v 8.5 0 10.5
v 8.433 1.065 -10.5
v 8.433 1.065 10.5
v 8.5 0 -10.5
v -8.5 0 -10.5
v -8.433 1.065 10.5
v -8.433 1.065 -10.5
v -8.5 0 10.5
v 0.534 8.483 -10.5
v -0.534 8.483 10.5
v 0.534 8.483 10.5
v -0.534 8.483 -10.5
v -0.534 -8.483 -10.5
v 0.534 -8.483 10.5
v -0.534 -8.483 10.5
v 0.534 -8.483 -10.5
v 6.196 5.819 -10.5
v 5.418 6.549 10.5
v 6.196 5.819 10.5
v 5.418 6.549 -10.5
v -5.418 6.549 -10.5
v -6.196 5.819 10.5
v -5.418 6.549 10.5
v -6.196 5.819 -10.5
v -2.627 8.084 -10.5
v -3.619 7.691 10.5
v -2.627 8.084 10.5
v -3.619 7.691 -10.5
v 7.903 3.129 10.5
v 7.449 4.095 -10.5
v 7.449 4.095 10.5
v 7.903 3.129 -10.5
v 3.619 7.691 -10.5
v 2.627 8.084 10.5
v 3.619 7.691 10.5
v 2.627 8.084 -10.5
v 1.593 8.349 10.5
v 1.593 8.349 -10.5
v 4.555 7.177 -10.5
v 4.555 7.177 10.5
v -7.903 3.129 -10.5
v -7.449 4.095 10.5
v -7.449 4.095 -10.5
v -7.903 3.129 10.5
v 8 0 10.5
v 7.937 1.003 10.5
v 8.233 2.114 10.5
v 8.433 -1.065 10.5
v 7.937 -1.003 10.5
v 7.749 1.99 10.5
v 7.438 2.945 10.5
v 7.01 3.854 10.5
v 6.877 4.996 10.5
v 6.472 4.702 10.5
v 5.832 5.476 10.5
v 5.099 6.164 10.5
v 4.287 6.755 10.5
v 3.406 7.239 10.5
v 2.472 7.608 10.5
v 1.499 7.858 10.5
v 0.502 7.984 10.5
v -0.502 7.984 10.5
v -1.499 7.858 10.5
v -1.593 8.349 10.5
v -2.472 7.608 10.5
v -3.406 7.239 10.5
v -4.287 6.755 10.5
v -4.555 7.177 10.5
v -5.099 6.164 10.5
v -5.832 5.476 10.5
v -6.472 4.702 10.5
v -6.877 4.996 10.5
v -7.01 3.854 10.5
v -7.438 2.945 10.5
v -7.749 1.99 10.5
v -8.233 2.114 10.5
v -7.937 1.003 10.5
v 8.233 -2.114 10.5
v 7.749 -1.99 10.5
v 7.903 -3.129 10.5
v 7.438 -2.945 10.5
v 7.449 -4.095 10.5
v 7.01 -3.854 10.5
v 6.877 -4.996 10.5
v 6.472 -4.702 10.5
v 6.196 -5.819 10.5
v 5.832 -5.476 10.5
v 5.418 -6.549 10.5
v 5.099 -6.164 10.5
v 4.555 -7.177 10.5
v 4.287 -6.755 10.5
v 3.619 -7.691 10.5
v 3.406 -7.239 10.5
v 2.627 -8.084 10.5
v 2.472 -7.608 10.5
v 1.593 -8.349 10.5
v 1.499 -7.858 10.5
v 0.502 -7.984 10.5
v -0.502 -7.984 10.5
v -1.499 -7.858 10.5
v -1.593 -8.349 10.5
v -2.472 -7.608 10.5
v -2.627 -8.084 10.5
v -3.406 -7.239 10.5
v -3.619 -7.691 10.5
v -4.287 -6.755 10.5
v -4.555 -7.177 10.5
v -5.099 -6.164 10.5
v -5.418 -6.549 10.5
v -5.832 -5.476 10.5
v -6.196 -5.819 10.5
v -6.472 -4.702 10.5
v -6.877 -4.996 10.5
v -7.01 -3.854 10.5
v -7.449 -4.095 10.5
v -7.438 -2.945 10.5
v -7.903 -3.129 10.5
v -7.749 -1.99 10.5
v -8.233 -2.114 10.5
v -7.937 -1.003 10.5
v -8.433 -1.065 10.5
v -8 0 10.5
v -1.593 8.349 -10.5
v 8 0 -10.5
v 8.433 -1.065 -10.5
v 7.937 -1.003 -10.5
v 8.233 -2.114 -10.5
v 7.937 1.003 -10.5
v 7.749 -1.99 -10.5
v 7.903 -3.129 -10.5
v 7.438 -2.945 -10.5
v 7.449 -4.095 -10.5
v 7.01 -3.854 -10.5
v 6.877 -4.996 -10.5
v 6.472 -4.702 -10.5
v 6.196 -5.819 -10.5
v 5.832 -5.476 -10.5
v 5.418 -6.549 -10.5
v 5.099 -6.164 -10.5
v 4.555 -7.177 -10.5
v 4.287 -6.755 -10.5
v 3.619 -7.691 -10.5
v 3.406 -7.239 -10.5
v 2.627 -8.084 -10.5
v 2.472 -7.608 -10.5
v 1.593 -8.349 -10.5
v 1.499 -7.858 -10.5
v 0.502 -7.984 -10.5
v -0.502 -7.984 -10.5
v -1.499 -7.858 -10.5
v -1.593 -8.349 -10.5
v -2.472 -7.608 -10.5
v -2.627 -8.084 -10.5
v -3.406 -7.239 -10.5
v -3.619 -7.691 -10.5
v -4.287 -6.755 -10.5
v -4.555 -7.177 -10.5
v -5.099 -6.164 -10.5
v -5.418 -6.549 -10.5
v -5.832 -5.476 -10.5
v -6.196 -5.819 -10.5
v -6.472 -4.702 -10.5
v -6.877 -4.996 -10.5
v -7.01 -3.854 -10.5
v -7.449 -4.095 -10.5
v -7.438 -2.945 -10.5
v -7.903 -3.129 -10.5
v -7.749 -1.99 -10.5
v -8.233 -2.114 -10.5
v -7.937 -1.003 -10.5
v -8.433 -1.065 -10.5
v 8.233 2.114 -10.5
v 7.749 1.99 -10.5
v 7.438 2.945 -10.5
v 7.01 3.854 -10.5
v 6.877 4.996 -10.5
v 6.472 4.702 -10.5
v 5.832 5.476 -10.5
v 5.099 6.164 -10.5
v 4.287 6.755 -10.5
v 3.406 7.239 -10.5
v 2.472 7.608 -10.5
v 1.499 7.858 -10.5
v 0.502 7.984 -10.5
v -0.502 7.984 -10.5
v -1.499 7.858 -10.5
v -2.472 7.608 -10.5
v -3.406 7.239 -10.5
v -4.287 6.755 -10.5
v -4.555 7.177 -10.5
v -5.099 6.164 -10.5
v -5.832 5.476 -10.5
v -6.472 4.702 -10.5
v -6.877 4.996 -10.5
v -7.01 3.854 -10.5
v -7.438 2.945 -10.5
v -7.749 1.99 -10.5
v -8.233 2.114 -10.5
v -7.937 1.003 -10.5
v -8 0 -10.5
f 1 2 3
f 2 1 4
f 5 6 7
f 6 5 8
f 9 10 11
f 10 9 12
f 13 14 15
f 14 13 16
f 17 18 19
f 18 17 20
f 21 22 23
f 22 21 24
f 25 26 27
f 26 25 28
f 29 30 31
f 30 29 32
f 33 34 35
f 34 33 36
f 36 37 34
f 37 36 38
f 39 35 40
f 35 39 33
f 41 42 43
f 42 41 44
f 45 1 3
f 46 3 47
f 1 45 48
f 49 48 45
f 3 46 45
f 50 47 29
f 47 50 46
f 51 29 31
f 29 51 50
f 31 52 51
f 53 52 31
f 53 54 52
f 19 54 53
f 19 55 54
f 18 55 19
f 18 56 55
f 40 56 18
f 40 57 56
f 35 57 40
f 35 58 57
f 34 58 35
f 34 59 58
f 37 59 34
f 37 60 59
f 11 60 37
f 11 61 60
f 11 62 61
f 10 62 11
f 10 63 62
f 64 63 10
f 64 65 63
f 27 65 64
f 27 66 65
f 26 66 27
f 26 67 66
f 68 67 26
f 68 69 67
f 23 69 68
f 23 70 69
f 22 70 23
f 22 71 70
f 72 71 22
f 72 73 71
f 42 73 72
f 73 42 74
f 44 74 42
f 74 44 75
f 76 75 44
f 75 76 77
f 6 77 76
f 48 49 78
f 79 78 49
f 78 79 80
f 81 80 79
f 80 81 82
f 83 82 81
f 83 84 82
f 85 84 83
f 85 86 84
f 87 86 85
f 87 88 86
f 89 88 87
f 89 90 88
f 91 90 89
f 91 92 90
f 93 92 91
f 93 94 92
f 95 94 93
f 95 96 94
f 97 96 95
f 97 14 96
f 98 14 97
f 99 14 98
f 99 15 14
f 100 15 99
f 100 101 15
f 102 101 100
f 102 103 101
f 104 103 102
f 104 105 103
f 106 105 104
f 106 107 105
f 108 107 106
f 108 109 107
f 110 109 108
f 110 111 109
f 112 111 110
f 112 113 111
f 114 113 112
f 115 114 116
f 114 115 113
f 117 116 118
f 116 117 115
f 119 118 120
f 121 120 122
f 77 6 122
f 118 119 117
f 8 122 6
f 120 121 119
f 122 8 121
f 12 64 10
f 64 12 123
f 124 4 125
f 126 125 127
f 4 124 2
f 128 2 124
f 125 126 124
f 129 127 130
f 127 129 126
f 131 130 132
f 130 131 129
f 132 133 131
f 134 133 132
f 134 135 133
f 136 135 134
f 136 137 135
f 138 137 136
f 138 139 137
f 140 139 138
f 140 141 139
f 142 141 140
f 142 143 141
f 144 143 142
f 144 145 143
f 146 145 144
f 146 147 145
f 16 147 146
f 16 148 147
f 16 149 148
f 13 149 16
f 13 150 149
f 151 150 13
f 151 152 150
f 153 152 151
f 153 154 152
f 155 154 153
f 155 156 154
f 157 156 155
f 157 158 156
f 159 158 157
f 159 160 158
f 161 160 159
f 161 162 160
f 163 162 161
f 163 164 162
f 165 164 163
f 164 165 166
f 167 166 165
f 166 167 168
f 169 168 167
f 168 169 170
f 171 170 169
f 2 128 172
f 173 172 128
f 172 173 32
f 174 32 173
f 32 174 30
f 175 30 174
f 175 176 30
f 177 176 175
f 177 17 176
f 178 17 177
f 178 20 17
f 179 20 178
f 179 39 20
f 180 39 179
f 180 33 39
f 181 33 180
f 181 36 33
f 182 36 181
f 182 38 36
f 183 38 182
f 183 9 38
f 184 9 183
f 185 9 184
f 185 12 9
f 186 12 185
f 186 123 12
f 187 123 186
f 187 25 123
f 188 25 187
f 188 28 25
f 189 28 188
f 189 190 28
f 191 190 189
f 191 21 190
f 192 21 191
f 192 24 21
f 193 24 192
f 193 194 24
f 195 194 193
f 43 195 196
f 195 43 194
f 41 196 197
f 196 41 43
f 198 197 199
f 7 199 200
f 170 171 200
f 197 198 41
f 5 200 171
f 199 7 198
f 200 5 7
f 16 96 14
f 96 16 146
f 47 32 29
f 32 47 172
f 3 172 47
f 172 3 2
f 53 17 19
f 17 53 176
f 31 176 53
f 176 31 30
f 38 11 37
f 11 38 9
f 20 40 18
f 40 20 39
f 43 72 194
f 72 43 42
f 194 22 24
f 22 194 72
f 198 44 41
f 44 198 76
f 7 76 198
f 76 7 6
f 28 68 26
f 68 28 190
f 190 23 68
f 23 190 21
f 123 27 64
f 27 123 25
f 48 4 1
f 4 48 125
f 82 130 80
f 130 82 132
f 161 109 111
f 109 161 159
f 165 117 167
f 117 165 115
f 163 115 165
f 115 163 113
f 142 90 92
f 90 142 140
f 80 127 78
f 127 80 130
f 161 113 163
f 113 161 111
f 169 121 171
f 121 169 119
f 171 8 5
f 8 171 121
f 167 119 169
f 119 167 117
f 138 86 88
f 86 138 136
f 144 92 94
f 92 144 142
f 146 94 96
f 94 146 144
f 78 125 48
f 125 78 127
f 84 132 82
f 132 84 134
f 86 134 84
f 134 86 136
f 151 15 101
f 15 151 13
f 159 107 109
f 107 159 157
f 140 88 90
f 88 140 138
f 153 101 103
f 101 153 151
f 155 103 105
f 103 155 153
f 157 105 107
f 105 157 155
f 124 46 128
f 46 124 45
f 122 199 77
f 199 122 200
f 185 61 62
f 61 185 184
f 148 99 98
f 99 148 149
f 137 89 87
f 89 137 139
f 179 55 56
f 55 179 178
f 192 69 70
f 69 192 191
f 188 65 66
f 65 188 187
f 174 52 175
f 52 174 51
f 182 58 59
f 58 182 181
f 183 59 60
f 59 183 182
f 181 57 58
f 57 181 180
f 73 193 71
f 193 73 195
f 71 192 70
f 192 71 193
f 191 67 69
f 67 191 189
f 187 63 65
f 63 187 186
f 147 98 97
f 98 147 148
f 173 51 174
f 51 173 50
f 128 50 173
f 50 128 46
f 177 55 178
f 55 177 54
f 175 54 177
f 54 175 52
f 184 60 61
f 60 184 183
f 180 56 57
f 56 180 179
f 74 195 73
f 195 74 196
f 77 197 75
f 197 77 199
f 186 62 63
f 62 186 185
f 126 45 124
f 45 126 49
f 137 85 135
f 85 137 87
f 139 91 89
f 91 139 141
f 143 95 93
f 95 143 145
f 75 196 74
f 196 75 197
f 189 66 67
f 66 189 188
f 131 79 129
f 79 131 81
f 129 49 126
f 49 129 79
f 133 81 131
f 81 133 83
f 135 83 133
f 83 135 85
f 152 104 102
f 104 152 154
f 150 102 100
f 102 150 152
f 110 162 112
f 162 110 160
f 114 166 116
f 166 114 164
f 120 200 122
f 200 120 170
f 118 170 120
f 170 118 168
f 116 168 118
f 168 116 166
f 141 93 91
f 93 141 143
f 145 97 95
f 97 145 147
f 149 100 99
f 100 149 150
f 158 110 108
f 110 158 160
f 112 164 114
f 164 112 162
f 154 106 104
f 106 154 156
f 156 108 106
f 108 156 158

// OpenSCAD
$fn = 50;


difference() {
	union() {
		translate(v = [0, 0, -10.5000000000]) {
			cylinder(h = 21, r = 8.5000000000);
		}
	}
	union() {
		translate(v = [0, 0, -100.0000000000]) {
			cylinder(h = 200, r = 8);
		}
	}
}
